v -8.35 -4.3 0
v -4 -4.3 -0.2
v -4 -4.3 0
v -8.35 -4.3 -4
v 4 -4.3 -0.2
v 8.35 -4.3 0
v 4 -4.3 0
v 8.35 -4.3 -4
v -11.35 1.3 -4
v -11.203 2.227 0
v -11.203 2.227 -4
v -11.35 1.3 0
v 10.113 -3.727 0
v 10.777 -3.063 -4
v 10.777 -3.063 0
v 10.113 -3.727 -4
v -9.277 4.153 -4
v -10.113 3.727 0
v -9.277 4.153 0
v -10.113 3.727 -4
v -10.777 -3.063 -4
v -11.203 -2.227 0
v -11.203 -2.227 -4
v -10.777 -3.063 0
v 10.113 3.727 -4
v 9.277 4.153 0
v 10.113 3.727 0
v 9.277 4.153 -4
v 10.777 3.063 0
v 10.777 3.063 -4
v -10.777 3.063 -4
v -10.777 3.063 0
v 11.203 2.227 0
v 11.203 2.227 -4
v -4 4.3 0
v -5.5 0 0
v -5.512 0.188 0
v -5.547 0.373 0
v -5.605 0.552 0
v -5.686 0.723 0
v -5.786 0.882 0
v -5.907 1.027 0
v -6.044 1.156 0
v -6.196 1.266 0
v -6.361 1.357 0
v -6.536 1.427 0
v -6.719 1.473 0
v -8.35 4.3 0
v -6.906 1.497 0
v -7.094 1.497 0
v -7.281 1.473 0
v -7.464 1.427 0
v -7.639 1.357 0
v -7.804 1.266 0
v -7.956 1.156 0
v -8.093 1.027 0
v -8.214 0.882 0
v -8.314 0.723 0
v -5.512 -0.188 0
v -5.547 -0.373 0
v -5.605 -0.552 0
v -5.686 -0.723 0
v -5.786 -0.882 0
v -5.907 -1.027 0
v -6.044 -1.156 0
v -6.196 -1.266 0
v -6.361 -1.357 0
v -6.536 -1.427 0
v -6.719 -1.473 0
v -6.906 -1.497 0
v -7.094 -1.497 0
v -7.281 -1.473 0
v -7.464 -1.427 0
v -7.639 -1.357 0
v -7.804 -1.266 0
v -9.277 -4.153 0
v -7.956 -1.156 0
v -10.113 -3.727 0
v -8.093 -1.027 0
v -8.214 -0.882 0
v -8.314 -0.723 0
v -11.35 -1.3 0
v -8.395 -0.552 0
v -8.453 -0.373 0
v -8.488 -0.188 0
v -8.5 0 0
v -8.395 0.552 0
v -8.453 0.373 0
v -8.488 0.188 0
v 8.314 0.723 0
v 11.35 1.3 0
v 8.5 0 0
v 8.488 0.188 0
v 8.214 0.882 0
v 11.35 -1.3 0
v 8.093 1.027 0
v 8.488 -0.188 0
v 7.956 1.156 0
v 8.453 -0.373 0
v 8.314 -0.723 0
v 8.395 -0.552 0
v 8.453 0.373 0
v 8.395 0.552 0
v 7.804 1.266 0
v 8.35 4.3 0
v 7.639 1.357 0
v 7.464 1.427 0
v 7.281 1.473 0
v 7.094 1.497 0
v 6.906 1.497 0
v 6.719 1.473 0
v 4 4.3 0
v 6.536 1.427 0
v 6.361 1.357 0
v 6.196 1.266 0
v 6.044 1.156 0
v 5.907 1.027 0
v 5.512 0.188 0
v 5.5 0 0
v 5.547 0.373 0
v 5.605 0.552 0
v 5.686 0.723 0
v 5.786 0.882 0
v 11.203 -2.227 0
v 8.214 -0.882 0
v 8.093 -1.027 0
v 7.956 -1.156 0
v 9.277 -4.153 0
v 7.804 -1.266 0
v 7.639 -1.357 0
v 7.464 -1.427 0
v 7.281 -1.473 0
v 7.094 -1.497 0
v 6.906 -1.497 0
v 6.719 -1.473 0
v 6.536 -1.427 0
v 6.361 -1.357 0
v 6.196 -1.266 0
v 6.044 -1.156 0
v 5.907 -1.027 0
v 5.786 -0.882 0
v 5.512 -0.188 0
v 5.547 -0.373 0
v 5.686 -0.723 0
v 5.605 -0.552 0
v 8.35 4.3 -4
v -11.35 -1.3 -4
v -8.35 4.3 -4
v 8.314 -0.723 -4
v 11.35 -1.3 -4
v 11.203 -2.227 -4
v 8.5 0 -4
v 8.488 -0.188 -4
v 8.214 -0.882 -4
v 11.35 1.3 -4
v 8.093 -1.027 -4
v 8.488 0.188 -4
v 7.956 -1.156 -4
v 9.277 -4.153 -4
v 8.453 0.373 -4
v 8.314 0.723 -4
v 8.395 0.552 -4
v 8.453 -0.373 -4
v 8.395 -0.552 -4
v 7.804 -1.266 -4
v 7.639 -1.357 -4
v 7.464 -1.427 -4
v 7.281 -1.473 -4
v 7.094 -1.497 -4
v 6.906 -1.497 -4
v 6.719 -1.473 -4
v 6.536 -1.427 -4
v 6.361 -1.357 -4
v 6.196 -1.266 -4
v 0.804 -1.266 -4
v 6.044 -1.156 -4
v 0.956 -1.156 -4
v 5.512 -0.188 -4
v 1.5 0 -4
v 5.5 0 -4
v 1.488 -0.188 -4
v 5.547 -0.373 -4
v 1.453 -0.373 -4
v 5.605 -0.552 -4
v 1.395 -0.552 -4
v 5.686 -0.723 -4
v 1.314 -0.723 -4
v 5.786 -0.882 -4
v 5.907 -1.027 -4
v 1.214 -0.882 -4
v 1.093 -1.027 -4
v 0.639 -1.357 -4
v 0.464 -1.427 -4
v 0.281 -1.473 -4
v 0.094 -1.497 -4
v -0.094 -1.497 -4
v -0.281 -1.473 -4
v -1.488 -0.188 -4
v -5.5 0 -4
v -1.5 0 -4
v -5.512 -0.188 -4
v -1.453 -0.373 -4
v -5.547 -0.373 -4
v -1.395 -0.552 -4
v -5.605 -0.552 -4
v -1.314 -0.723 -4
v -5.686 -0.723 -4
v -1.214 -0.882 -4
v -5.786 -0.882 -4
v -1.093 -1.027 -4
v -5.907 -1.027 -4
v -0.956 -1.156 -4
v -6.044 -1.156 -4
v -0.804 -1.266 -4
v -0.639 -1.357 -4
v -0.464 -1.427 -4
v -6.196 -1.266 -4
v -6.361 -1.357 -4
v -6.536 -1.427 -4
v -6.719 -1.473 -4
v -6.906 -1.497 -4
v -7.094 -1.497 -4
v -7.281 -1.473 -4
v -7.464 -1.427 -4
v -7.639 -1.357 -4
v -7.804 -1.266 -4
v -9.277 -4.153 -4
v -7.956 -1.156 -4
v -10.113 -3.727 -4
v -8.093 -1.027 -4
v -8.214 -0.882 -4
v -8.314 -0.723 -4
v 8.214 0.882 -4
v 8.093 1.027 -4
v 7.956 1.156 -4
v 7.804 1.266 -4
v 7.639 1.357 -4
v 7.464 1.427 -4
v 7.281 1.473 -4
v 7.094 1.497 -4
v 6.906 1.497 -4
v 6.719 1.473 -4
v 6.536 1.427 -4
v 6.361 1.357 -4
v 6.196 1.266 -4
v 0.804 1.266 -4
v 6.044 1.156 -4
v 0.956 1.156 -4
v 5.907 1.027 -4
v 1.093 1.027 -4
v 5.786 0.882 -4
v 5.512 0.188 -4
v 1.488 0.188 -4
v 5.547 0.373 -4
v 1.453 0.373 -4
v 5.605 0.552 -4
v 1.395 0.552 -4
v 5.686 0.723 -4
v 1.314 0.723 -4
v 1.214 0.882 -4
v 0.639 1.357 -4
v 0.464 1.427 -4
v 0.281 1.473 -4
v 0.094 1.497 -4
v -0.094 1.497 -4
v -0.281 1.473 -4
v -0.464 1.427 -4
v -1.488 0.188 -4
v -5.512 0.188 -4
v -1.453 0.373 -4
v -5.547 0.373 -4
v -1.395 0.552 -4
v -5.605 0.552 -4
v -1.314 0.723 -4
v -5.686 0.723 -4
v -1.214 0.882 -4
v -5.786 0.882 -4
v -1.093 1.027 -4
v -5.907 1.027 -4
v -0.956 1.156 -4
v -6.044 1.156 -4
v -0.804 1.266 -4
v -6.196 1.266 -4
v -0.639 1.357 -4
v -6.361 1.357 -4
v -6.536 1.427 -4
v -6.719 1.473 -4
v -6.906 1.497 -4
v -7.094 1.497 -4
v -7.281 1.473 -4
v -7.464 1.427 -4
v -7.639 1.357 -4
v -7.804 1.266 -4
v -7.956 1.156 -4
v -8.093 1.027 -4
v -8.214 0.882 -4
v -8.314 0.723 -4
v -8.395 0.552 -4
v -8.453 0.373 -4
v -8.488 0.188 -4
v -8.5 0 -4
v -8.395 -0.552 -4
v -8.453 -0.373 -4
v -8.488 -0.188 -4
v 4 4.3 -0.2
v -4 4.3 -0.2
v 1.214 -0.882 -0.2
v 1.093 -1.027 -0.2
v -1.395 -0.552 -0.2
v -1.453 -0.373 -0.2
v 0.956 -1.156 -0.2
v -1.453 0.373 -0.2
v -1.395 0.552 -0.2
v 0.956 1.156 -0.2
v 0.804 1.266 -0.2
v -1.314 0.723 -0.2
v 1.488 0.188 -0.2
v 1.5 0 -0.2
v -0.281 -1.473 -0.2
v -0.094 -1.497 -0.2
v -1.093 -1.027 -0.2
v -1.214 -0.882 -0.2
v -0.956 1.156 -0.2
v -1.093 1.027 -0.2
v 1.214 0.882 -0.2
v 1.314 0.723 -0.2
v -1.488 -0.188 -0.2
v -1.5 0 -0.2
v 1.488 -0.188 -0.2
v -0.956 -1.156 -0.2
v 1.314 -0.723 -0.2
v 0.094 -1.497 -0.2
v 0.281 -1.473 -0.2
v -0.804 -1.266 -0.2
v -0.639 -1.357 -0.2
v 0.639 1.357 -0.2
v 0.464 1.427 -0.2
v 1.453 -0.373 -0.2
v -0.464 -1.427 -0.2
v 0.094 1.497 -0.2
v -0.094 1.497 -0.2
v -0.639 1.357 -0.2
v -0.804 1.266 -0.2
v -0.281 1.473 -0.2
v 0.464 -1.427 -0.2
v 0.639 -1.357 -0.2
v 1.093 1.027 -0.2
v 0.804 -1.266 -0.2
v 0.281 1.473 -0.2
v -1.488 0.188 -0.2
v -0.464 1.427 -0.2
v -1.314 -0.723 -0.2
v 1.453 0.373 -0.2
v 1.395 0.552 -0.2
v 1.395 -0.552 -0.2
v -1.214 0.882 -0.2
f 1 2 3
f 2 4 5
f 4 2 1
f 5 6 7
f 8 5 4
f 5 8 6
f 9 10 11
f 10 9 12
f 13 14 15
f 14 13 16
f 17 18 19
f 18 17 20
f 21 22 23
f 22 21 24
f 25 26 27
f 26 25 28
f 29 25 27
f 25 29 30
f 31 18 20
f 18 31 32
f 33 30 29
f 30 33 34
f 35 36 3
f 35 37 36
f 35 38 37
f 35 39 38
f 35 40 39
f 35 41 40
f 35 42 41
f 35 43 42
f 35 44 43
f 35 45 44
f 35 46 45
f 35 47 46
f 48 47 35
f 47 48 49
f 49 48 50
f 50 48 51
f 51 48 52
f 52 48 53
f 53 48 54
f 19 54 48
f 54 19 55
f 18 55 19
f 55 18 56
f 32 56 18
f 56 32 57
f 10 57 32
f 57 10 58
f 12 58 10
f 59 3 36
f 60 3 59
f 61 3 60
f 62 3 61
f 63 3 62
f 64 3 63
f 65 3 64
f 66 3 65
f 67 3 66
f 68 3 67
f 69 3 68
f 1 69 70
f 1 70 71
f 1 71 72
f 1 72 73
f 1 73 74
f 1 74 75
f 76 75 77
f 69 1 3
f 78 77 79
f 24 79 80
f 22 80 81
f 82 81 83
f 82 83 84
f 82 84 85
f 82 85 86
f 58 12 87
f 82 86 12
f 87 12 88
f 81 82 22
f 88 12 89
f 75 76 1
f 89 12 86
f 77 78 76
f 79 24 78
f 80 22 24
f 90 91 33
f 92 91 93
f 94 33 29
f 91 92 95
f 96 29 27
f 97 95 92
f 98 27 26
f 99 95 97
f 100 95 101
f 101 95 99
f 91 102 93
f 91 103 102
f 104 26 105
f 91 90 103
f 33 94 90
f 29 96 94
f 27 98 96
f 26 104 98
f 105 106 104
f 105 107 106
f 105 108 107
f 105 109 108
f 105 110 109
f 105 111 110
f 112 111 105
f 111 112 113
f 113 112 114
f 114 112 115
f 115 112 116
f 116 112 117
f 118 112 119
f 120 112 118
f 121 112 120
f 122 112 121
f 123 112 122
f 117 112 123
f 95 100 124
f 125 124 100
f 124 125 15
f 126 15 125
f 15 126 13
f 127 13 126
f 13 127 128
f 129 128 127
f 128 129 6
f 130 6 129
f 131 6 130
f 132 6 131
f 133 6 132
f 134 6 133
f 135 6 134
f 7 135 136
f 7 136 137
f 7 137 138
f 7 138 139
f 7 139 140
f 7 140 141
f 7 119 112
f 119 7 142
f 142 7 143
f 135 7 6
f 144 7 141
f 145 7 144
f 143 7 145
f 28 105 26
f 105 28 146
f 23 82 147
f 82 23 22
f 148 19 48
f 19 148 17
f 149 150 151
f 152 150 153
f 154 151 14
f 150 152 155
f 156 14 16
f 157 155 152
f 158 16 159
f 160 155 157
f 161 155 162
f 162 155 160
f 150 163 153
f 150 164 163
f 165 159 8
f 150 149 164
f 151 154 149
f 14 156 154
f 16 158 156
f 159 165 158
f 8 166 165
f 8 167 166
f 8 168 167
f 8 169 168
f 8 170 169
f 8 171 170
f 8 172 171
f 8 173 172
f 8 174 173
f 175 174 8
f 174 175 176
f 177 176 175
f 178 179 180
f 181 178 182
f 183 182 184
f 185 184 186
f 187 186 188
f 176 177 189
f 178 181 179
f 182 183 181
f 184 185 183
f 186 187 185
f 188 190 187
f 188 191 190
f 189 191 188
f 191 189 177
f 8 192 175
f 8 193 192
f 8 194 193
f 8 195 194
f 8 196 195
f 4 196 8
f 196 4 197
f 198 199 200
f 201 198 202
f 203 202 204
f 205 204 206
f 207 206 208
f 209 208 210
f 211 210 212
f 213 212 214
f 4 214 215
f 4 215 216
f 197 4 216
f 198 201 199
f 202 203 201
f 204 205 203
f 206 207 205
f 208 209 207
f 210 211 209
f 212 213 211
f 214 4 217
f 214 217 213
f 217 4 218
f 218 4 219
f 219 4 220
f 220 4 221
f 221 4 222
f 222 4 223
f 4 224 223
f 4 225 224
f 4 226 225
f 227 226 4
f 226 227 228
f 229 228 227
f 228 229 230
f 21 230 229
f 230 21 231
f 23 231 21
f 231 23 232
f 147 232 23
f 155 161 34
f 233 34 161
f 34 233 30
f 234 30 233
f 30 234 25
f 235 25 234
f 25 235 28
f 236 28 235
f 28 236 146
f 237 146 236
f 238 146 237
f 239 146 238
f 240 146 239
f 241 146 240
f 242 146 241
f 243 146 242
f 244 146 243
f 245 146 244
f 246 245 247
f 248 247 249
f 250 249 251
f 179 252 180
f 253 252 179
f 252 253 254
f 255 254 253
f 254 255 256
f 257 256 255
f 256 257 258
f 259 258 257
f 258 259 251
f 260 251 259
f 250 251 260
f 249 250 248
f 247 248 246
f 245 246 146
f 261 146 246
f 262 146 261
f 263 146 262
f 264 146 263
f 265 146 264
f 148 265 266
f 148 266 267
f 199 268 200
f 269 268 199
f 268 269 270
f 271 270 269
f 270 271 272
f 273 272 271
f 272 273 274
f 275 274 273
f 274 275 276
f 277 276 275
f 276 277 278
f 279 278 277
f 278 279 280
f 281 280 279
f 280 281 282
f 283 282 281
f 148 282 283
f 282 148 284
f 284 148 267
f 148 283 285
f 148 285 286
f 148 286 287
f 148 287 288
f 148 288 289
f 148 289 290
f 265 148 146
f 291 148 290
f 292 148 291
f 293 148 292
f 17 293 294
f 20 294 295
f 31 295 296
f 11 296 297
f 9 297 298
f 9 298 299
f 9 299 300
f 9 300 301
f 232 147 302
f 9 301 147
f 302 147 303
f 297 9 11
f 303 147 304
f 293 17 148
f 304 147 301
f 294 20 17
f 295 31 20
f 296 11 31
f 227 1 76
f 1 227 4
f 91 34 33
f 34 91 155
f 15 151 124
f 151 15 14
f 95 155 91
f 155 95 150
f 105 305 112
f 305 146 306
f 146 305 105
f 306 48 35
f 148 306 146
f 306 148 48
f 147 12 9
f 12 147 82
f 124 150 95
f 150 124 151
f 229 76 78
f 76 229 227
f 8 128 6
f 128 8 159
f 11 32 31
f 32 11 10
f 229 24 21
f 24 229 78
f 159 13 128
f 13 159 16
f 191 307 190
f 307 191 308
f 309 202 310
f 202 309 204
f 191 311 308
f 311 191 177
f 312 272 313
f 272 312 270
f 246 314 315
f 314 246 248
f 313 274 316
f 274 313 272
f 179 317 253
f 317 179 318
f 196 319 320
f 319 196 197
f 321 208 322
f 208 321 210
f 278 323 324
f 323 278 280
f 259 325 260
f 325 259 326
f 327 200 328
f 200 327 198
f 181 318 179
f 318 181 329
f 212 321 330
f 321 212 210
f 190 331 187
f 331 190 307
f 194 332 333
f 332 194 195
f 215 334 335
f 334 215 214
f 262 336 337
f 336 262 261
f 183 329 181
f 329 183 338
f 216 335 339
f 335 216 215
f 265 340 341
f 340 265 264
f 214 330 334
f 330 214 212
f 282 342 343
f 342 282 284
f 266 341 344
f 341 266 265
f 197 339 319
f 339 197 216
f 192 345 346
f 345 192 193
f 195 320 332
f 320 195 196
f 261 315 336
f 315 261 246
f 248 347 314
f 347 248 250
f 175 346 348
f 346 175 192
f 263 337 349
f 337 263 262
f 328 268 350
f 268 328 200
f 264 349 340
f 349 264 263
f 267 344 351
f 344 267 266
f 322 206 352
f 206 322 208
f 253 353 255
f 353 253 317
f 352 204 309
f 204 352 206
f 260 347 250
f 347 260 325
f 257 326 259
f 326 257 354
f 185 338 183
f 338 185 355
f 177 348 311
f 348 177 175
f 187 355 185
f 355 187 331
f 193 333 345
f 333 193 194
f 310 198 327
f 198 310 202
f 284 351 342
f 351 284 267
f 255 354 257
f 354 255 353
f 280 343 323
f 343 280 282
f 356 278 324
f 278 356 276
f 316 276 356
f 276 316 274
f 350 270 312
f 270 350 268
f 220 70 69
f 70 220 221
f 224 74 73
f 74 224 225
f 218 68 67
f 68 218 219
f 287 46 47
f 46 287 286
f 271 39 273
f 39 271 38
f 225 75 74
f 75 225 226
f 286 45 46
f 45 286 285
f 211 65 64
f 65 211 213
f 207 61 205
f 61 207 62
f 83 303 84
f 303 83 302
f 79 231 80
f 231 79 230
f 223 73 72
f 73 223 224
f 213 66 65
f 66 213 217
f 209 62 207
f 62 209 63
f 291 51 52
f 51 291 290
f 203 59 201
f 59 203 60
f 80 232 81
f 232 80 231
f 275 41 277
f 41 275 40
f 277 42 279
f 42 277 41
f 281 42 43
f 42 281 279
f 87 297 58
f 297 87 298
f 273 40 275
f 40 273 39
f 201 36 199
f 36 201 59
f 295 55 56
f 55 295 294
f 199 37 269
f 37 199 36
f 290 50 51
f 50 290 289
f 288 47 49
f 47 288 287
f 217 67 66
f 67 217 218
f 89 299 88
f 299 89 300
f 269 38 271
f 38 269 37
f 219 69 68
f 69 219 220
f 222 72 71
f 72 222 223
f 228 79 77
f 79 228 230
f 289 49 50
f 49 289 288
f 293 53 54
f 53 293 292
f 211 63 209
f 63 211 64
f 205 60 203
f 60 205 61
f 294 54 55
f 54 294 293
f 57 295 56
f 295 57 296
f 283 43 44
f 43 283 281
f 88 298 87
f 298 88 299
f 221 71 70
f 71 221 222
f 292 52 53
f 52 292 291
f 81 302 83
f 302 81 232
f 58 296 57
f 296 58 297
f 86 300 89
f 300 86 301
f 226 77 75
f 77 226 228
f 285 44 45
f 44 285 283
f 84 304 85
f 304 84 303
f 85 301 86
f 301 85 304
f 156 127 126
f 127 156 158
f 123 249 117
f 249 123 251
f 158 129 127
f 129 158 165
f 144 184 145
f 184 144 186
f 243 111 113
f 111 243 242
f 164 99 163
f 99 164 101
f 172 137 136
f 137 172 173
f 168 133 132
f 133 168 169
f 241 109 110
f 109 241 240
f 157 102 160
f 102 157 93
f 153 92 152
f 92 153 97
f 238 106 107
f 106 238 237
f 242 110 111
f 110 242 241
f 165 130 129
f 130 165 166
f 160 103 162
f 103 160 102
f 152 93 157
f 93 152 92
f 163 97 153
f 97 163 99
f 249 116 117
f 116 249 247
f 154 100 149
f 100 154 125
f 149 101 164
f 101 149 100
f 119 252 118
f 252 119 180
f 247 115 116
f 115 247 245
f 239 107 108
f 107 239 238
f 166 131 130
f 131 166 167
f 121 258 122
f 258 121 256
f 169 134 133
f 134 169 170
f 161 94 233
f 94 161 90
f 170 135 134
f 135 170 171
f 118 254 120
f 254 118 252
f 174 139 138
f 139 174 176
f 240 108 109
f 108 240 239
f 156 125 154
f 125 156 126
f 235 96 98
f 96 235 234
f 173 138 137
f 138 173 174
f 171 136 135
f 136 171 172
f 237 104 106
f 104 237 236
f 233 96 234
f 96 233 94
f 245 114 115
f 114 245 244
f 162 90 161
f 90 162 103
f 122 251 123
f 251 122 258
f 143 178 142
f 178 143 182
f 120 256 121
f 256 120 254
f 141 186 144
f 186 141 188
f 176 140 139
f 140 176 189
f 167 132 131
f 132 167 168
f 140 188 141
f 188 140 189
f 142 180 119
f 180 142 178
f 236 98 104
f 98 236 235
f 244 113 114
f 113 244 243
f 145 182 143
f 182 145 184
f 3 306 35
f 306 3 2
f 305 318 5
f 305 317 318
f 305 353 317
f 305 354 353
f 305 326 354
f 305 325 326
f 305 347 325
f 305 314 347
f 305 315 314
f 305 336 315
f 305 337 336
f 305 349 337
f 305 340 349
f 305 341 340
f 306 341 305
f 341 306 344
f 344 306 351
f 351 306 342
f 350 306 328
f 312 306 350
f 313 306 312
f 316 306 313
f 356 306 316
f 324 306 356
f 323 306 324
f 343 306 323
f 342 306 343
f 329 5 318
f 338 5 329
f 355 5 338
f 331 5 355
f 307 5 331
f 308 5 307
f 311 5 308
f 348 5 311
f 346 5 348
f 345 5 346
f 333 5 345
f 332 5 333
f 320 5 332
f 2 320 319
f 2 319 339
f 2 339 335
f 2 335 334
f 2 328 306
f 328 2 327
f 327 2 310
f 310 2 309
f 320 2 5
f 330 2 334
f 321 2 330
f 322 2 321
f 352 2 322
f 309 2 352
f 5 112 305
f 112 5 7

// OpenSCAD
// file: ../lib/utils.scad
include <params.scad>;

function tol(val) = val - tolerance;

module cone(r, angle, invert=false) {
    h = tan((180 - angle) / 2) * r;
    translate([0, 0, -h]) {
        if (invert) {
                cylinder(r1=r,r2=0,h=h, $fn=20); 
        } else {
            cylinder(r1=0,r2=r,h=h, $fn=20); 
        }
    }
}

module roundrect(vect, r, center=false, $fn=20) {
    sq = len(vect) > 1
        ? [for (i = [0:1:len(vect)-1]) vect[i] - r * 2]
        : vect - r * 2;
    if (center) {
        translate([-(sq[0]+r*2)/2,-(sq[1]+r*2)/2])
        minkowski() {
            square(sq);
            translate([r, r])
                circle(r=r);
        }
    } else {
        minkowski() {
            square(sq);
            translate([r, r])
                circle(r=r);
        }
    }
}

module profile($fn=20) {
    minkowski() {
        translate([fan_case_radius, fan_case_radius, 0])
            square(fan_case - fan_case_radius * 2);
        circle(fan_case_radius, $fn);
    }
}

module fan_mount_points(radius, $fn=20) {
    offset = (fan_case - fan_screw_distance) / 2;
    translate([offset, offset, 0]) {
        circle(radius, $fn);
        translate([fan_screw_distance, 0, 0])
            circle(radius, $fn);
        translate([fan_screw_distance, fan_screw_distance, 0])
            circle(radius, $fn);
        translate([0, fan_screw_distance, 0])
            circle(radius, $fn);
    }
}

module square_grill(width, height, fin_width, fin_count) {
    fin_spacing = width / fin_count;
    difference() {
        square(width);
        union() {
            for (i = [0:1:fin_count]) {
                translate([(i + 1) * fin_spacing - (fin_spacing / 2) - (fin_width / 2), 0, 0])
                    square([fin_width, height]);
            }
        }
    }
}

module bushing(outer_r, inner_r, h) {
    linear_extrude(h)
        difference() {
            circle(r=outer_r);
            circle(r=inner_r);
        }
}

module screw_at_origin(r, d, l, head, head_d, cap, angle) {
    translate([0, 0, -l])
        screw(r, d, l, head, head_d, cap, angle);
}

module screw(r, d, l, head, head_d, cap, angle, fn=20, head_fn) {
    radius = r > 0 ? r : d / 2;
    head_r = head > 0 ? head : head_d / 2;
    hfn = head_fn ? head_fn : fn;

    union() {
        if (angle) {
            translate([0, 0, l])
                cone(head_r, angle, false);
        }
        linear_extrude(l)
            circle(r=radius, $fn=fn);
        if (cap > 0) {
            union() {
                translate([0, 0, l - cap])
                    linear_extrude(cap)
                        circle(r=head_r, $fn=hfn);
                translate([0, 0, l - cap - layer_height])
                    linear_extrude(layer_height)
                        square([radius * 2, head_r*2], center=true);
                translate([0, 0, l - cap - layer_height*2])
                    linear_extrude(layer_height)
                        square([radius * 2, radius*2], center=true);
            }
        }
    }
}

module inset_screw(r, d, l, head, head_d, cap, angle, inset, fn=20, head_fn) {
    screw_height = l - inset;
    head_r = head > 0 ? head : head_d / 2;

    union() {
        screw(
            r=r,
            d=d,
            l=screw_height,
            head=head_r,
            cap=cap,
            angle=angle,
            fn=fn,
            head_fn=head_fn
        );
        translate([0, 0, screw_height])
            linear_extrude(inset)
                circle(r=head_r, $fn=fn);
    }
}

function inch_to_mm(inches) = inches * 25.4;
// file: ../lib/params.scad
/*************/
/** Exhaust **/
/*************/

/**
 * Fan case sizes: used for all fan parts, including adapters, inlets
 * grills.
 */
fan_case = 120;
fan_screw_distance = 105;
fan_case_depth = 25;
fan_case_radius = 5;
fan_case_screw_radius = 2.5;
fan_case_socket_cap_radius = 5.6 / 2;
fan_case_screw_head_radius = 3;
fan_case_screw_head_angle = 90;

/**
 * Fan grill
 */
grill_screw_size = 3;
grill_screw_radius = grill_screw_size / 2;
grill_screw_inset = 2;
grill_radius = 114 / 2;
grill_fin_offset = 10;
grill_fin_thickness = 2;
grill_fin_degrees = 30;

rear_grill_thickness = 2;

front_grill_thickness = 2;
front_grill_fin_count = 6;
front_grill_fin_thickness = 2;

/**
 * Fan duct filter
 */
filter_thickness = 5;
filter_width = fan_screw_distance - fan_case_screw_radius * 3;
filter_offset = (fan_case - filter_width) / 2;

base_retainer_thickness = 2;
base_height = 30;
base_cut_offset = 10;
base_retainer_inset = 4;

/**
 * Fan to duct adapter
 */
adapter_thickness = 2;
adapter_duct_in = 4;
adapter_height = 14;
adapter_duct_height = 50;
flat_adapter_duct_height = 50;
flat_adapter_screw_radius = 2;
flat_adapter_screw_head_radius = 4;

/**
 * Fan adapter filter caddy
 */
caddy_thickness = 2;
caddy_handle_width = 20;
caddy_handle_depth = 10;
caddy_handle_grip_count = 5;
caddy_handle_grip_depth = 1;
caddy_handle_grip_width = 1;
caddy_clip_height = 2;
caddy_clip_depth = 6;
caddy_clip_offset = 1;

/***************/
/** Enclosure **/
/***************/

/**
 * Enclosure foot
 */
foot_lower_radius = 15;
foot_upper_radius = 20;
foot_height = 18;
foot_inset_radius = 4;
foot_inset_depth = 3;
foot_screw_radius = 4;
foot_screw_inset = 6;
foot_screw_head_radius = 8;

/**
 * Power supply attachment
 */
power_supply_case_thickness = 3.0;
power_supply_screw_radius = 1.5;
power_supply_bushing_radius = 7.5;

power_supply_cable_pass_width = 18;
power_supply_cable_pass_height = 5;
power_supply_cable_pass_overhang = 5;
power_supply_cable_pass_overhang_depth = power_supply_case_thickness;
power_supply_cable_pass_depth = 3;
power_supply_cable_pass_thickness = 3;

/**
 * LED strip holder
 */
led_strip_cutout = 0.2;
led_strip_depth = 4;
led_strip_width = 8;
led_strip_screw_offset = 1.5;
led_strip_screw_radius = 1.5;
led_strip_screw_head = 2.8;
led_strip_nut_head = 3.25;
led_strip_nut_inset = 3;
led_strip_screw_inset = 3;

/**************/
/** Filament **/
/**************/

/**
 * Filament case passthrough
 */
through_base_width = 60;
through_base_height = 20;
through_base_depth = 5;
through_base_screw_offset = 10;
through_base_screw_radius = 1.5;
through_base_screw_head = 2.8;
through_base_nut_head = 3.25;
through_base_nut_inset = 3;
through_base_screw_inset = 3;
through_base_fitting_d = 5;
case_thickness = 1;
case_through_radius = 6;
filament_radius = 1;

inlet_length = 10;
inlet_outer_radius = 3;
inlet_inner_radius = 2;
inlet_angle = -20;


/**********/
/** Misc **/
/**********/

// tolerance is used all over the place to decide how closely parts fit
// together; adjust to the tolerances of your printer. 0.2 works fine for
// a Prusa i3 MK3.
tolerance = 0.2;
layer_height = 0.2;
// file: lib/led-strip-holder.scad
include <../../lib/params.scad>;
use <../../lib/utils.scad>;

$fn=50;

total_height = led_strip_screw_head * 2 + led_strip_screw_offset * 2;
total_width = total_height*2 + led_strip_width/2 + led_strip_screw_offset;
screw_offset = led_strip_width/2 + led_strip_screw_offset + led_strip_screw_radius;

module through_profile() {
    linear_extrude(led_strip_depth)
        roundrect([total_width, total_height], 3, center=true);
}

module left_screw_translate() {
    translate([-screw_offset, 0, 0])
        children();
}

module right_screw_translate() {
    translate([screw_offset, 0, 0])
        children();
}

module outer() {
    union() {
        difference() {
            through_profile();
            left_screw_translate()
                screw(
                    r=led_strip_screw_radius,
                    l=led_strip_depth,
                    head=led_strip_screw_head,
                    cap=led_strip_screw_inset
                );
            right_screw_translate()
                screw(
                    r=led_strip_screw_radius,
                    l=led_strip_depth,
                    head=led_strip_screw_head,
                    cap=led_strip_screw_inset
                );
        }
    }
}

module inner() {
    union() {
        difference() {
            union() {
                through_profile();
            }
            left_screw_translate()
                screw(
                    r=led_strip_screw_radius,
                    l=led_strip_depth,
                    head=led_strip_nut_head,
                    cap=led_strip_nut_inset,
                    head_fn=6
                );
            right_screw_translate()
                screw(
                    r=led_strip_screw_radius,
                    l=led_strip_depth,
                    head=led_strip_nut_head,
                    cap=led_strip_nut_inset,
                    head_fn=6
                );
            linear_extrude(led_strip_cutout)
                square([led_strip_width, total_width], center=true);
        }
    }
}

module drill_guide() {
    difference() {
        through_profile();
        cylinder(r=led_strip_screw_radius, h=led_strip_depth);
        left_screw_translate()
            cylinder(r=led_strip_screw_radius, h=led_strip_depth);
        right_screw_translate()
            cylinder(r=led_strip_screw_radius, h=led_strip_depth);
        linear_extrude(led_strip_cutout)
            square([led_strip_width, total_width], center=true);
    }
}
// main file
use <lib/led-strip-holder.scad>;

$fn=50;

rotate([180, 0, 0])
    drill_guide();
